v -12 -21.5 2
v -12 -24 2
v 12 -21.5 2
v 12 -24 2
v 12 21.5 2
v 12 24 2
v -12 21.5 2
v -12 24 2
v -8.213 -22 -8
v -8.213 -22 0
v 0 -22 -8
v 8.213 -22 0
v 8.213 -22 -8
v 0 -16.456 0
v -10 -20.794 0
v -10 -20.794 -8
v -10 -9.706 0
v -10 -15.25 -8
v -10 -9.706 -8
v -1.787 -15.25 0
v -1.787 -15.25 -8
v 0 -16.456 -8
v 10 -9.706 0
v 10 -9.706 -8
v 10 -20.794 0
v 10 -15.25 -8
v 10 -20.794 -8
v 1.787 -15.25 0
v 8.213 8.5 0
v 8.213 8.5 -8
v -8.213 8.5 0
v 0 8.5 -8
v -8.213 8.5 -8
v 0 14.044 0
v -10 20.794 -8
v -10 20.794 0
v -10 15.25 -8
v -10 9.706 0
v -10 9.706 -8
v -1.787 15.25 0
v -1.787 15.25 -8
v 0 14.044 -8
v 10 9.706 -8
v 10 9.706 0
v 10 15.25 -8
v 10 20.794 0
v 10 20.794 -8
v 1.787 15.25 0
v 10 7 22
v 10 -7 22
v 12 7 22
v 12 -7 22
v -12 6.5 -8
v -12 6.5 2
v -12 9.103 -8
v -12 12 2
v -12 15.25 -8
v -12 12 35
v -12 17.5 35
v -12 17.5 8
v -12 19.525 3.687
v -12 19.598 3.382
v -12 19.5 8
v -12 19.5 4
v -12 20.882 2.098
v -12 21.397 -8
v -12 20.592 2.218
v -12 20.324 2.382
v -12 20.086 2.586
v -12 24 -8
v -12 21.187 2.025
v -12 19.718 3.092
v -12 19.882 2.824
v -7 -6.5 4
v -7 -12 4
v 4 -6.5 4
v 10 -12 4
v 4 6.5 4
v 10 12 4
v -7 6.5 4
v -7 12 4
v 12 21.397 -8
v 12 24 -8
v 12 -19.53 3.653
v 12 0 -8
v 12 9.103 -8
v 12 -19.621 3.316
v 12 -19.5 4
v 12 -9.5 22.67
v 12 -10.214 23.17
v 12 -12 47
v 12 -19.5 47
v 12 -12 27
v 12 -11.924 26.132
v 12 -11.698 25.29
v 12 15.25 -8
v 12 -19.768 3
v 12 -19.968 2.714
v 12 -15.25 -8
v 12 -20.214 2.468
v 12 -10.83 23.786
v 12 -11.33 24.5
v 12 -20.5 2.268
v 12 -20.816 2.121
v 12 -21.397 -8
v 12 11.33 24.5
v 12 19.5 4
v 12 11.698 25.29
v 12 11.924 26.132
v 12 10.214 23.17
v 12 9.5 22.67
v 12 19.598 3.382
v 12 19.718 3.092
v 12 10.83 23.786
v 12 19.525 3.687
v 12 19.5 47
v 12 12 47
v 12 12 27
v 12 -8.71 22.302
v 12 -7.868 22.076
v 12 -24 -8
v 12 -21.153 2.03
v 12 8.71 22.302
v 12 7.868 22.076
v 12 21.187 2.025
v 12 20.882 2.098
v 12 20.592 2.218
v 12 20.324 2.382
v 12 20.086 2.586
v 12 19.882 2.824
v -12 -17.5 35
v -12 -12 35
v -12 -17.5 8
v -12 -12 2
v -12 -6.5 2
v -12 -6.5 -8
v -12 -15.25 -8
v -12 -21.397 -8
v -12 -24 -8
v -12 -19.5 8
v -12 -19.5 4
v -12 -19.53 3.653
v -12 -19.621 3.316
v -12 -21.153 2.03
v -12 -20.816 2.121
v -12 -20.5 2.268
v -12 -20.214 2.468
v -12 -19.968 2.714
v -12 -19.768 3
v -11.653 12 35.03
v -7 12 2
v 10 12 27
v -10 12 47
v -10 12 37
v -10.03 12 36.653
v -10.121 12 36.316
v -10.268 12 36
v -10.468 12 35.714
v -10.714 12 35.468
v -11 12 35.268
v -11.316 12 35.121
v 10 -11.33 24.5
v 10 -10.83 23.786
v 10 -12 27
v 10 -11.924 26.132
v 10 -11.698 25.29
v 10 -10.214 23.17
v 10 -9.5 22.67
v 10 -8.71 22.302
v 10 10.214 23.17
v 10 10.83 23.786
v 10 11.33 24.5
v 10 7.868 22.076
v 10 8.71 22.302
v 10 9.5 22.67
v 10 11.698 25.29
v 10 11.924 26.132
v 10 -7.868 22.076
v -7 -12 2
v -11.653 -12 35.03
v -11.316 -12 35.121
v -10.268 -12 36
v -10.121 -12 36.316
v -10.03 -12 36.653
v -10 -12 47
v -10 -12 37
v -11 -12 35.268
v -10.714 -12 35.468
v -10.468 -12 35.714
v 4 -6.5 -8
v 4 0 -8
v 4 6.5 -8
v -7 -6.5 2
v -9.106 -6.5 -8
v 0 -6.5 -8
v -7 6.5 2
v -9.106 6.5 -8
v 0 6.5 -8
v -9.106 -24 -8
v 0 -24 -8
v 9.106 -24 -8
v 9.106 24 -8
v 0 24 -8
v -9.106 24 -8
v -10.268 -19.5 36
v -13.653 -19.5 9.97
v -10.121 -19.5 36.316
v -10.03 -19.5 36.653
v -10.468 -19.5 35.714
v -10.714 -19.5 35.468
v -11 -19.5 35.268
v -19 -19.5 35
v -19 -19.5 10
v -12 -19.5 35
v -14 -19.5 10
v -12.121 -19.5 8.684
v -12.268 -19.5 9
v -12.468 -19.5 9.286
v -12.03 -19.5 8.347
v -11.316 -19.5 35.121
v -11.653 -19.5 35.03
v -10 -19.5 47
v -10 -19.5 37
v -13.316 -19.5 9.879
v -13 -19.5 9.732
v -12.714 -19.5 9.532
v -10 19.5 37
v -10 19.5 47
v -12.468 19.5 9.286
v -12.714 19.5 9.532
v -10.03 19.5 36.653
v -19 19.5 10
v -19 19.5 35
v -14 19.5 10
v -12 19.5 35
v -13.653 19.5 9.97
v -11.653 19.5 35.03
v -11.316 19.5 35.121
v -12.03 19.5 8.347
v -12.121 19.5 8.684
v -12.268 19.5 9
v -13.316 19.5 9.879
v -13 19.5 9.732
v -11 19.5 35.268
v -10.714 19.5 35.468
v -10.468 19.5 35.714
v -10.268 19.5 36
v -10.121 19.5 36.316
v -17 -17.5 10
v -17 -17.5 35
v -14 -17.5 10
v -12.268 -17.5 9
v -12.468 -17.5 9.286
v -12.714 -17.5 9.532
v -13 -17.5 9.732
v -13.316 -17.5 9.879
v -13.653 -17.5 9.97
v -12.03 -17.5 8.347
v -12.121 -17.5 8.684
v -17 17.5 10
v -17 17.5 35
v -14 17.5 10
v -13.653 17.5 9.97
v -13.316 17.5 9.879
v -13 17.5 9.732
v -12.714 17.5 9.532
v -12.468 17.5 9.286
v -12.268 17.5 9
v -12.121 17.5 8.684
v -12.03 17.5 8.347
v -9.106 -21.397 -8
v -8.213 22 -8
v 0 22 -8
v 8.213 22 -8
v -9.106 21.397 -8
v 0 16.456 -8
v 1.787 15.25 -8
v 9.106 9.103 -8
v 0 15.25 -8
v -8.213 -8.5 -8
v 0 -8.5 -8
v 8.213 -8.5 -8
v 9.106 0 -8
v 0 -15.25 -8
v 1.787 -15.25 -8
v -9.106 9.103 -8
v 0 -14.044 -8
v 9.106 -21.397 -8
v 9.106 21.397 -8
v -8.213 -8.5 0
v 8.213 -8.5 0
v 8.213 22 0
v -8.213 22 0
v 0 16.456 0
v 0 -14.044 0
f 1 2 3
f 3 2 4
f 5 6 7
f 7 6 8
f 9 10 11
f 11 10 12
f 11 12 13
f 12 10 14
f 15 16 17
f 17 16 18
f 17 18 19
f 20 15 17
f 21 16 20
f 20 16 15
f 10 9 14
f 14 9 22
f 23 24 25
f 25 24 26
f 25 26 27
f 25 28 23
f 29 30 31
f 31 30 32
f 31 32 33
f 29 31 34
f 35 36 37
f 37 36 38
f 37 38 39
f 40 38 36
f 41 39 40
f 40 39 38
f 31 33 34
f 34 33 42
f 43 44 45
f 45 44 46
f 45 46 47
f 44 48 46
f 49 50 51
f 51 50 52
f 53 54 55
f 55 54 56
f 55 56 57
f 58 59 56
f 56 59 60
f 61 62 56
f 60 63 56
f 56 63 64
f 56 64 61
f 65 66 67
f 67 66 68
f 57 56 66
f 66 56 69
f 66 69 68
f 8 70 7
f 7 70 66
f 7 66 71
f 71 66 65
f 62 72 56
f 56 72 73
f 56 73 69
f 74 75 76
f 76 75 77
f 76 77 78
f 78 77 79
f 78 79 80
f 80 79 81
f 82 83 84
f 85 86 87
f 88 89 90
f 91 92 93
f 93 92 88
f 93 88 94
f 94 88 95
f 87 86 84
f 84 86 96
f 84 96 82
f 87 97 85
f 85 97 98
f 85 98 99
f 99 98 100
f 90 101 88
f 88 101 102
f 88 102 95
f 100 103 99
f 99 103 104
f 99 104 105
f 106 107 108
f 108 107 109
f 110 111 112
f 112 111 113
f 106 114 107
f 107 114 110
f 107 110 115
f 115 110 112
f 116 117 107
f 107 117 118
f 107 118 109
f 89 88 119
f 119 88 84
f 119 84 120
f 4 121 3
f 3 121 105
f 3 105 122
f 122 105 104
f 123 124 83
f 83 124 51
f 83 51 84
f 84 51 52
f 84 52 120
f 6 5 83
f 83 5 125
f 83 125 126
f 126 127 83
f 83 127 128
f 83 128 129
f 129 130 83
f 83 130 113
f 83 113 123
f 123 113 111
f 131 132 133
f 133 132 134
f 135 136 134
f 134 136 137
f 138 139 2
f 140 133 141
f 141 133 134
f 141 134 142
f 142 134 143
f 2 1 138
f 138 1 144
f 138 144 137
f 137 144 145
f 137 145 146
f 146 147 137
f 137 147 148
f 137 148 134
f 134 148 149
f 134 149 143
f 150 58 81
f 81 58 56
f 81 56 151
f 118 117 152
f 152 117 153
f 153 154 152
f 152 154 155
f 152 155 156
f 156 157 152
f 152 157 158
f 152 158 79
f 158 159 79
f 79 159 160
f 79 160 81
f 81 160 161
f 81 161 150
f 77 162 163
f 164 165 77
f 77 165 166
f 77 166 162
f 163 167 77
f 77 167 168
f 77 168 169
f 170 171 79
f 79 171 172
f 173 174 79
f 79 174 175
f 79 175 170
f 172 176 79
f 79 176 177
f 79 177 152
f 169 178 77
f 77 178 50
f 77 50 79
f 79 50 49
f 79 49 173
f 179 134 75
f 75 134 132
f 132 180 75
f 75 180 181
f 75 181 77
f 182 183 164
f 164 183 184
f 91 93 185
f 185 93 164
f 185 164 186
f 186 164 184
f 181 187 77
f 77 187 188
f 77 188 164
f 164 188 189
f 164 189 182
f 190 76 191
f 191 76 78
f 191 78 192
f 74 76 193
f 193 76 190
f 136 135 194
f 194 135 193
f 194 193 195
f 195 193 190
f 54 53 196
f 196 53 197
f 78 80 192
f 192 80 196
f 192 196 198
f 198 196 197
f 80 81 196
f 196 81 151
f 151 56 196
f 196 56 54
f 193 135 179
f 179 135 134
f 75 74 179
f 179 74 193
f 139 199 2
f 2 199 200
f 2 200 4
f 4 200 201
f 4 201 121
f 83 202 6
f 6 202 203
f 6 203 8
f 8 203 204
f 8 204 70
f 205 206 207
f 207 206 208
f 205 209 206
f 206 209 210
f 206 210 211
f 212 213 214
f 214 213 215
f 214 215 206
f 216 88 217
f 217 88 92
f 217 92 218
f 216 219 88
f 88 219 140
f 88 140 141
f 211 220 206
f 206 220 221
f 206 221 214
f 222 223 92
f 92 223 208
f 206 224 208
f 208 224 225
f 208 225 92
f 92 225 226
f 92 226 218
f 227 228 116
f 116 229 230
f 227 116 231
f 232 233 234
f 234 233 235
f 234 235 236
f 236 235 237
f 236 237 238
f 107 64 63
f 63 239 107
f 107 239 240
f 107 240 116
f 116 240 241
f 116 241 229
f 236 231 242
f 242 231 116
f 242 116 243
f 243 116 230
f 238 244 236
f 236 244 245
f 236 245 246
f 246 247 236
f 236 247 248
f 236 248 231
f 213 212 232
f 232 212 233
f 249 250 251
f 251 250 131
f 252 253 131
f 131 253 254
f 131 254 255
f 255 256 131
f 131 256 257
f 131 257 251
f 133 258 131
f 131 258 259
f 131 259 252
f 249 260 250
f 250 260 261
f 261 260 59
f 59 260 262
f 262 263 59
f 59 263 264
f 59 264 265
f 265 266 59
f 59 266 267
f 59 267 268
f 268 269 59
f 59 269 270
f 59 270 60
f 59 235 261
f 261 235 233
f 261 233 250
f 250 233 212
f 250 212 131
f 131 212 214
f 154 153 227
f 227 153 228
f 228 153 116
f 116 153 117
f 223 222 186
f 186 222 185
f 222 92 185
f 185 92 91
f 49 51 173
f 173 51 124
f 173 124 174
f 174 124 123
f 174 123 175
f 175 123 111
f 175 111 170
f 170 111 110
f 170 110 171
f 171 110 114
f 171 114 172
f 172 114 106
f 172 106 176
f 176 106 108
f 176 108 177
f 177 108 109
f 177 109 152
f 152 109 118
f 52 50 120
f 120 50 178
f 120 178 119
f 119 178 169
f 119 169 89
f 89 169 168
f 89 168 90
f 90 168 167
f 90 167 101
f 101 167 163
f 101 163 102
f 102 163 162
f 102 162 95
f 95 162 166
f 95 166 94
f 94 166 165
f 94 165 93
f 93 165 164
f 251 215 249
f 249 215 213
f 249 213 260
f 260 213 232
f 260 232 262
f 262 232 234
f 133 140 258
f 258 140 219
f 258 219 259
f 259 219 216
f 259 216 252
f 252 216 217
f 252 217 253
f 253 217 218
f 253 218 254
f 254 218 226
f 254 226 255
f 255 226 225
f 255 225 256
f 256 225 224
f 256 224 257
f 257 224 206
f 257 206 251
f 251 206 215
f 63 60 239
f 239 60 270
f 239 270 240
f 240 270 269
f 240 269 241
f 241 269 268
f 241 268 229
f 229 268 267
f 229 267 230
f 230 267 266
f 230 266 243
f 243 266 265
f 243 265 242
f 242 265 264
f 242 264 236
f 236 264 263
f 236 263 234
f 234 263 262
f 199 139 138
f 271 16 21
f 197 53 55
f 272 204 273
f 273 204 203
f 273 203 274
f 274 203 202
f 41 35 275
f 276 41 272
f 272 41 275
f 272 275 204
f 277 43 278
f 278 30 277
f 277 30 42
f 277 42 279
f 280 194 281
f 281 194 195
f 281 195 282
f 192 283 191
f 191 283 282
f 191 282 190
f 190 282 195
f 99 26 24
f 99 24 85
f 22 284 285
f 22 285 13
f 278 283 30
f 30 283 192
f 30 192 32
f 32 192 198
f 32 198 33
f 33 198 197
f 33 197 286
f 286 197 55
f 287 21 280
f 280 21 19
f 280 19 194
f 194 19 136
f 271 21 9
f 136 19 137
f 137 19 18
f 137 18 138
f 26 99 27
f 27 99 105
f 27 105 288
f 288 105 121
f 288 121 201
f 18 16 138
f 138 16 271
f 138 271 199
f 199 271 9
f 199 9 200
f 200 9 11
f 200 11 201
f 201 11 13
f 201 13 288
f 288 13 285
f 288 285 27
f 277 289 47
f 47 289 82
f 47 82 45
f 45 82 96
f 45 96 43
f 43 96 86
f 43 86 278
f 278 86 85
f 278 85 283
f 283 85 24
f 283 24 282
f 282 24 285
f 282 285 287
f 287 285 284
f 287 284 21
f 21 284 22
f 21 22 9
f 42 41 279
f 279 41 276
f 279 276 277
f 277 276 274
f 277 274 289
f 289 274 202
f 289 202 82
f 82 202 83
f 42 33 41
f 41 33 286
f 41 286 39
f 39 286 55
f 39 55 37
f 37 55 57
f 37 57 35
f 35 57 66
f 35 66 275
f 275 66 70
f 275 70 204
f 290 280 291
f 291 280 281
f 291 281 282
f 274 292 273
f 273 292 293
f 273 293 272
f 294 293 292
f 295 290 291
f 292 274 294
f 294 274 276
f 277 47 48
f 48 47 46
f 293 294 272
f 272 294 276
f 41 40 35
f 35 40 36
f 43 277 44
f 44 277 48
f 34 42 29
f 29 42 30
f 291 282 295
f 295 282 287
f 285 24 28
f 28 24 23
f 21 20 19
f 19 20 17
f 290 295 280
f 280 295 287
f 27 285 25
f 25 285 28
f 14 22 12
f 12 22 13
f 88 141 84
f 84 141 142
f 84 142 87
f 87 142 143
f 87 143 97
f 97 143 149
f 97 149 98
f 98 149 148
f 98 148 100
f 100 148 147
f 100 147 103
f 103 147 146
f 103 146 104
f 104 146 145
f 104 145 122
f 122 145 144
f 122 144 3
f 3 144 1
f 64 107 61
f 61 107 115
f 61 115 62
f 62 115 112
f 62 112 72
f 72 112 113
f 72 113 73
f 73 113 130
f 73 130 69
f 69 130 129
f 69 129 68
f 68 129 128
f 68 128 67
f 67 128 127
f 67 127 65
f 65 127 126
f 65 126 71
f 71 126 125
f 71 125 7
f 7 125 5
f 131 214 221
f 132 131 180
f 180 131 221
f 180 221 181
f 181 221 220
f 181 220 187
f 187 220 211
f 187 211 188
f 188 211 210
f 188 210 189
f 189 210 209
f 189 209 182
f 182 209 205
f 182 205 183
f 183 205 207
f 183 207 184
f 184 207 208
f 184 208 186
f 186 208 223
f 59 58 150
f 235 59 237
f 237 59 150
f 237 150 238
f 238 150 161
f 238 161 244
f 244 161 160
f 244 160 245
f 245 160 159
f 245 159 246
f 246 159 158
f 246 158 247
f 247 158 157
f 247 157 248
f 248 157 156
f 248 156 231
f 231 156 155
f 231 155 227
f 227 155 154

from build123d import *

# Parameters (mm, degrees)
SKETCH_2_W          = 24
SKETCH_2_H          = 28
EXTRUDE_1_DEPTH     = 22
SKETCH_3_W          = 20
SKETCH_3_H          = 24
CUT_EXTRUDE_1_DEPTH = 18
SKETCH_4_W          = 16
SKETCH_4_H          = 13
CUT_EXTRUDE_3_DEPTH = 26.768197453
SKETCH_6_W          = 20
SKETCH_6_H          = 24
CUT_EXTRUDE_4_DEPTH = 5
SKETCH_7_W          = 24
SKETCH_7_H          = 2
EXTRUDE_3_DEPTH     = 10
SKETCH_8_W          = 24
SKETCH_8_H          = 2
EXTRUDE_4_DEPTH     = 10
EXTRUDE_5_DEPTH     = 35
SKETCH_10_W         = 22
SKETCH_10_H         = 2
EXTRUDE_6_DEPTH     = 25
FILLET_2_R          = 5
SKETCH_11_W         = 7
SKETCH_11_H         = 10
CUT_EXTRUDE_5_DEPTH = 67.80007485
FILLET_4_R          = 2
SKETCH_12_W         = 20
SKETCH_12_H         = 13.5
EXTRUDE_7_DEPTH     = 8
RIB_1_REACH         = 64.944
SKETCH_14_W         = 22
SKETCH_14_H         = 5.5
EXTRUDE_8_DEPTH     = 45
FILLET_5_R          = 2


with BuildPart() as part:
    # ｽｹｯﾁ2 → ﾎﾞｽ - 押し出し1 (new body)
    with BuildSketch(Plane.XY):
        Rectangle(SKETCH_2_W, SKETCH_2_H)
    extrude(amount=EXTRUDE_1_DEPTH)

    # ｽｹｯﾁ3 → ｶｯﾄ - 押し出し1 (cut)
    with BuildSketch(Plane.XY.offset(22)):
        Rectangle(SKETCH_3_W, SKETCH_3_H)
    extrude(amount=-CUT_EXTRUDE_1_DEPTH, mode=Mode.SUBTRACT)

    # ｽｹｯﾁ4 → ｶｯﾄ - 押し出し3 (cut, through all)
    with BuildSketch(Plane.XY.offset(4)):
        with Locations((-4, 0)):
            Rectangle(SKETCH_4_W, SKETCH_4_H)
    extrude(amount=-CUT_EXTRUDE_3_DEPTH, mode=Mode.SUBTRACT)

    # ｽｹｯﾁ6 → ｶｯﾄ - 押し出し4 (cut)
    with BuildSketch(Plane.ZY.offset(12)):
        with Locations((12, 0)):
            Rectangle(SKETCH_6_W, SKETCH_6_H)
    extrude(amount=-CUT_EXTRUDE_4_DEPTH, mode=Mode.SUBTRACT)

    # ｽｹｯﾁ7 → ﾎﾞｽ - 押し出し3 (add)
    with BuildSketch(Plane.XZ.offset(14)):
        with Locations((0, 1)):
            Rectangle(SKETCH_7_W, SKETCH_7_H)
    extrude(amount=EXTRUDE_3_DEPTH)

    # ｽｹｯﾁ8 → ﾎﾞｽ - 押し出し4 (add)
    with BuildSketch(Plane(origin=(0, 14, 0), x_dir=(1, 0, 0), z_dir=(0, 1, 0))):
        with Locations((0, -1)):
            Rectangle(SKETCH_8_W, SKETCH_8_H)
    extrude(amount=EXTRUDE_4_DEPTH)

    # ｽｹｯﾁ9 → ﾎﾞｽ - 押し出し5 (add)
    with BuildSketch(Plane(origin=(0, 0, 0), x_dir=(-1, 0, 0), z_dir=(0, 0, -1))):
        Polygon((12, 17.5), (17, 17.5), (17, -17.5), (12, -17.5), (12, -12), (10, -12), (10, -19.5), (19, -19.5), (19, 19.5), (10, 19.5), (10, 12), (12, 12), align=None)
    extrude(amount=-EXTRUDE_5_DEPTH)

    # ｽｹｯﾁ10 → ﾎﾞｽ - 押し出し6 (add)
    with BuildSketch(Plane.XY.offset(22)):
        with Locations((1, 13)):
            Rectangle(SKETCH_10_W, SKETCH_10_H)
        with Locations((1, -13)):
            Rectangle(SKETCH_10_W, SKETCH_10_H)
    extrude(amount=EXTRUDE_6_DEPTH)

    # ﾌｨﾚｯﾄ2
    fillet_2_edges = [part.edges().sort_by_distance(p)[0] for p in [
        (11, 12, 22),
        (11, -12, 22),
    ]]
    fillet(fillet_2_edges, radius=FILLET_2_R)

    # ｽｹｯﾁ11 → ｶｯﾄ - 押し出し5 (cut, through all)
    with BuildSketch(Plane(origin=(0, 19.5, 0), x_dir=(1, 0, 0), z_dir=(0, 1, 0))):
        with Locations((-15.5, -5)):
            Rectangle(SKETCH_11_W, SKETCH_11_H)
    extrude(amount=-CUT_EXTRUDE_5_DEPTH, mode=Mode.SUBTRACT)

    # ﾌｨﾚｯﾄ4
    fillet_4_edges = [part.edges().sort_by_distance(p)[0] for p in [
        (-12, -18.5, 10),
        (-12, 18.5, 10),
    ]]
    fillet(fillet_4_edges, radius=FILLET_4_R)

    # ｽｹｯﾁ12 → ﾎﾞｽ - 押し出し7 (add)
    with BuildSketch(Plane(origin=(0, 0, 0), x_dir=(-1, 0, 0), z_dir=(0, 0, -1))):
        Polygon((-12, 24), (12, 24), (12, 6.5), (-4, 6.5), (-4, -6.5), (12, -6.5), (12, -24), (-12, -24), (-12, -6.5), (-12, 6.5), align=None)
        with Locations((0, -15.25)):
            Rectangle(SKETCH_12_W, SKETCH_12_H, mode=Mode.SUBTRACT)
        with Locations((0, 15.25)):
            Rectangle(SKETCH_12_W, SKETCH_12_H, mode=Mode.SUBTRACT)
    extrude(amount=EXTRUDE_7_DEPTH)

    # ｽｹｯﾁ13 walls → ﾘﾌﾞ1 (add, up to next)
    with BuildSketch(Plane(origin=(0, 0, -8), x_dir=(-1, 0, 0), z_dir=(0, 0, -1)), mode=Mode.PRIVATE) as rib_1_sk1:
        Polygon((-63.559720526, 56.946318504), (62.440774816, -28.104015852), (63.559720526, -26.446318504), (-62.440774816, 58.604015852), align=None)
    rib_1_tool1 = extrude(rib_1_sk1.sketch, amount=-RIB_1_REACH, mode=Mode.PRIVATE) - part.part
    # ｽｹｯﾁ13 walls → ﾘﾌﾞ1 (add, up to next)
    with BuildSketch(Plane(origin=(0, 0, -8), x_dir=(-1, 0, 0), z_dir=(0, 0, -1)), mode=Mode.PRIVATE) as rib_1_sk2:
        Polygon((-62.440774816, -28.104015852), (63.559720526, 56.946318504), (62.440774816, 58.604015852), (-63.559720526, -26.446318504), align=None)
    rib_1_tool2 = extrude(rib_1_sk2.sketch, amount=-RIB_1_REACH, mode=Mode.PRIVATE) - part.part
    # ｽｹｯﾁ13 walls → ﾘﾌﾞ1 (add, up to next)
    with BuildSketch(Plane(origin=(0, 0, -8), x_dir=(-1, 0, 0), z_dir=(0, 0, -1)), mode=Mode.PRIVATE) as rib_1_sk3:
        Polygon((-63.559720526, 26.446318504), (62.440774816, -58.604015852), (63.559720526, -56.946318504), (-62.440774816, 28.104015852), align=None)
    rib_1_tool3 = extrude(rib_1_sk3.sketch, amount=-RIB_1_REACH, mode=Mode.PRIVATE) - part.part
    # ｽｹｯﾁ13 walls → ﾘﾌﾞ1 (add, up to next)
    with BuildSketch(Plane(origin=(0, 0, -8), x_dir=(-1, 0, 0), z_dir=(0, 0, -1)), mode=Mode.PRIVATE) as rib_1_sk4:
        Polygon((-62.440774816, -58.604015852), (63.559720526, 26.446318504), (62.440774816, 28.104015852), (-63.559720526, -56.946318504), align=None)
    rib_1_tool4 = extrude(rib_1_sk4.sketch, amount=-RIB_1_REACH, mode=Mode.PRIVATE) - part.part
    add(rib_1_tool1.solids().sort_by_distance((0, 15.25, -8))[0])
    add(rib_1_tool2.solids().sort_by_distance((0, 15.25, -8))[0])
    add(rib_1_tool3.solids().sort_by_distance((0, -15.25, -8))[0])
    add(rib_1_tool4.solids().sort_by_distance((0, -15.25, -8))[0])

    # ｽｹｯﾁ14 → ﾎﾞｽ - 押し出し8 (add)
    with BuildSketch(Plane.XY.offset(2)):
        with Locations((1, 16.75)):
            Rectangle(SKETCH_14_W, SKETCH_14_H)
        with Locations((1, -16.75)):
            Rectangle(SKETCH_14_W, SKETCH_14_H)
    extrude(amount=EXTRUDE_8_DEPTH)

    # ﾌｨﾚｯﾄ5
    fillet_5_edges = [part.edges().sort_by_distance(p)[0] for p in [
        (0, -19.5, 2),
        (0, 19.5, 2),
        (-10, -15.75, 35),
        (-10, 15.75, 35),
    ]]
    fillet(fillet_5_edges, radius=FILLET_5_R)


solid = part.part
